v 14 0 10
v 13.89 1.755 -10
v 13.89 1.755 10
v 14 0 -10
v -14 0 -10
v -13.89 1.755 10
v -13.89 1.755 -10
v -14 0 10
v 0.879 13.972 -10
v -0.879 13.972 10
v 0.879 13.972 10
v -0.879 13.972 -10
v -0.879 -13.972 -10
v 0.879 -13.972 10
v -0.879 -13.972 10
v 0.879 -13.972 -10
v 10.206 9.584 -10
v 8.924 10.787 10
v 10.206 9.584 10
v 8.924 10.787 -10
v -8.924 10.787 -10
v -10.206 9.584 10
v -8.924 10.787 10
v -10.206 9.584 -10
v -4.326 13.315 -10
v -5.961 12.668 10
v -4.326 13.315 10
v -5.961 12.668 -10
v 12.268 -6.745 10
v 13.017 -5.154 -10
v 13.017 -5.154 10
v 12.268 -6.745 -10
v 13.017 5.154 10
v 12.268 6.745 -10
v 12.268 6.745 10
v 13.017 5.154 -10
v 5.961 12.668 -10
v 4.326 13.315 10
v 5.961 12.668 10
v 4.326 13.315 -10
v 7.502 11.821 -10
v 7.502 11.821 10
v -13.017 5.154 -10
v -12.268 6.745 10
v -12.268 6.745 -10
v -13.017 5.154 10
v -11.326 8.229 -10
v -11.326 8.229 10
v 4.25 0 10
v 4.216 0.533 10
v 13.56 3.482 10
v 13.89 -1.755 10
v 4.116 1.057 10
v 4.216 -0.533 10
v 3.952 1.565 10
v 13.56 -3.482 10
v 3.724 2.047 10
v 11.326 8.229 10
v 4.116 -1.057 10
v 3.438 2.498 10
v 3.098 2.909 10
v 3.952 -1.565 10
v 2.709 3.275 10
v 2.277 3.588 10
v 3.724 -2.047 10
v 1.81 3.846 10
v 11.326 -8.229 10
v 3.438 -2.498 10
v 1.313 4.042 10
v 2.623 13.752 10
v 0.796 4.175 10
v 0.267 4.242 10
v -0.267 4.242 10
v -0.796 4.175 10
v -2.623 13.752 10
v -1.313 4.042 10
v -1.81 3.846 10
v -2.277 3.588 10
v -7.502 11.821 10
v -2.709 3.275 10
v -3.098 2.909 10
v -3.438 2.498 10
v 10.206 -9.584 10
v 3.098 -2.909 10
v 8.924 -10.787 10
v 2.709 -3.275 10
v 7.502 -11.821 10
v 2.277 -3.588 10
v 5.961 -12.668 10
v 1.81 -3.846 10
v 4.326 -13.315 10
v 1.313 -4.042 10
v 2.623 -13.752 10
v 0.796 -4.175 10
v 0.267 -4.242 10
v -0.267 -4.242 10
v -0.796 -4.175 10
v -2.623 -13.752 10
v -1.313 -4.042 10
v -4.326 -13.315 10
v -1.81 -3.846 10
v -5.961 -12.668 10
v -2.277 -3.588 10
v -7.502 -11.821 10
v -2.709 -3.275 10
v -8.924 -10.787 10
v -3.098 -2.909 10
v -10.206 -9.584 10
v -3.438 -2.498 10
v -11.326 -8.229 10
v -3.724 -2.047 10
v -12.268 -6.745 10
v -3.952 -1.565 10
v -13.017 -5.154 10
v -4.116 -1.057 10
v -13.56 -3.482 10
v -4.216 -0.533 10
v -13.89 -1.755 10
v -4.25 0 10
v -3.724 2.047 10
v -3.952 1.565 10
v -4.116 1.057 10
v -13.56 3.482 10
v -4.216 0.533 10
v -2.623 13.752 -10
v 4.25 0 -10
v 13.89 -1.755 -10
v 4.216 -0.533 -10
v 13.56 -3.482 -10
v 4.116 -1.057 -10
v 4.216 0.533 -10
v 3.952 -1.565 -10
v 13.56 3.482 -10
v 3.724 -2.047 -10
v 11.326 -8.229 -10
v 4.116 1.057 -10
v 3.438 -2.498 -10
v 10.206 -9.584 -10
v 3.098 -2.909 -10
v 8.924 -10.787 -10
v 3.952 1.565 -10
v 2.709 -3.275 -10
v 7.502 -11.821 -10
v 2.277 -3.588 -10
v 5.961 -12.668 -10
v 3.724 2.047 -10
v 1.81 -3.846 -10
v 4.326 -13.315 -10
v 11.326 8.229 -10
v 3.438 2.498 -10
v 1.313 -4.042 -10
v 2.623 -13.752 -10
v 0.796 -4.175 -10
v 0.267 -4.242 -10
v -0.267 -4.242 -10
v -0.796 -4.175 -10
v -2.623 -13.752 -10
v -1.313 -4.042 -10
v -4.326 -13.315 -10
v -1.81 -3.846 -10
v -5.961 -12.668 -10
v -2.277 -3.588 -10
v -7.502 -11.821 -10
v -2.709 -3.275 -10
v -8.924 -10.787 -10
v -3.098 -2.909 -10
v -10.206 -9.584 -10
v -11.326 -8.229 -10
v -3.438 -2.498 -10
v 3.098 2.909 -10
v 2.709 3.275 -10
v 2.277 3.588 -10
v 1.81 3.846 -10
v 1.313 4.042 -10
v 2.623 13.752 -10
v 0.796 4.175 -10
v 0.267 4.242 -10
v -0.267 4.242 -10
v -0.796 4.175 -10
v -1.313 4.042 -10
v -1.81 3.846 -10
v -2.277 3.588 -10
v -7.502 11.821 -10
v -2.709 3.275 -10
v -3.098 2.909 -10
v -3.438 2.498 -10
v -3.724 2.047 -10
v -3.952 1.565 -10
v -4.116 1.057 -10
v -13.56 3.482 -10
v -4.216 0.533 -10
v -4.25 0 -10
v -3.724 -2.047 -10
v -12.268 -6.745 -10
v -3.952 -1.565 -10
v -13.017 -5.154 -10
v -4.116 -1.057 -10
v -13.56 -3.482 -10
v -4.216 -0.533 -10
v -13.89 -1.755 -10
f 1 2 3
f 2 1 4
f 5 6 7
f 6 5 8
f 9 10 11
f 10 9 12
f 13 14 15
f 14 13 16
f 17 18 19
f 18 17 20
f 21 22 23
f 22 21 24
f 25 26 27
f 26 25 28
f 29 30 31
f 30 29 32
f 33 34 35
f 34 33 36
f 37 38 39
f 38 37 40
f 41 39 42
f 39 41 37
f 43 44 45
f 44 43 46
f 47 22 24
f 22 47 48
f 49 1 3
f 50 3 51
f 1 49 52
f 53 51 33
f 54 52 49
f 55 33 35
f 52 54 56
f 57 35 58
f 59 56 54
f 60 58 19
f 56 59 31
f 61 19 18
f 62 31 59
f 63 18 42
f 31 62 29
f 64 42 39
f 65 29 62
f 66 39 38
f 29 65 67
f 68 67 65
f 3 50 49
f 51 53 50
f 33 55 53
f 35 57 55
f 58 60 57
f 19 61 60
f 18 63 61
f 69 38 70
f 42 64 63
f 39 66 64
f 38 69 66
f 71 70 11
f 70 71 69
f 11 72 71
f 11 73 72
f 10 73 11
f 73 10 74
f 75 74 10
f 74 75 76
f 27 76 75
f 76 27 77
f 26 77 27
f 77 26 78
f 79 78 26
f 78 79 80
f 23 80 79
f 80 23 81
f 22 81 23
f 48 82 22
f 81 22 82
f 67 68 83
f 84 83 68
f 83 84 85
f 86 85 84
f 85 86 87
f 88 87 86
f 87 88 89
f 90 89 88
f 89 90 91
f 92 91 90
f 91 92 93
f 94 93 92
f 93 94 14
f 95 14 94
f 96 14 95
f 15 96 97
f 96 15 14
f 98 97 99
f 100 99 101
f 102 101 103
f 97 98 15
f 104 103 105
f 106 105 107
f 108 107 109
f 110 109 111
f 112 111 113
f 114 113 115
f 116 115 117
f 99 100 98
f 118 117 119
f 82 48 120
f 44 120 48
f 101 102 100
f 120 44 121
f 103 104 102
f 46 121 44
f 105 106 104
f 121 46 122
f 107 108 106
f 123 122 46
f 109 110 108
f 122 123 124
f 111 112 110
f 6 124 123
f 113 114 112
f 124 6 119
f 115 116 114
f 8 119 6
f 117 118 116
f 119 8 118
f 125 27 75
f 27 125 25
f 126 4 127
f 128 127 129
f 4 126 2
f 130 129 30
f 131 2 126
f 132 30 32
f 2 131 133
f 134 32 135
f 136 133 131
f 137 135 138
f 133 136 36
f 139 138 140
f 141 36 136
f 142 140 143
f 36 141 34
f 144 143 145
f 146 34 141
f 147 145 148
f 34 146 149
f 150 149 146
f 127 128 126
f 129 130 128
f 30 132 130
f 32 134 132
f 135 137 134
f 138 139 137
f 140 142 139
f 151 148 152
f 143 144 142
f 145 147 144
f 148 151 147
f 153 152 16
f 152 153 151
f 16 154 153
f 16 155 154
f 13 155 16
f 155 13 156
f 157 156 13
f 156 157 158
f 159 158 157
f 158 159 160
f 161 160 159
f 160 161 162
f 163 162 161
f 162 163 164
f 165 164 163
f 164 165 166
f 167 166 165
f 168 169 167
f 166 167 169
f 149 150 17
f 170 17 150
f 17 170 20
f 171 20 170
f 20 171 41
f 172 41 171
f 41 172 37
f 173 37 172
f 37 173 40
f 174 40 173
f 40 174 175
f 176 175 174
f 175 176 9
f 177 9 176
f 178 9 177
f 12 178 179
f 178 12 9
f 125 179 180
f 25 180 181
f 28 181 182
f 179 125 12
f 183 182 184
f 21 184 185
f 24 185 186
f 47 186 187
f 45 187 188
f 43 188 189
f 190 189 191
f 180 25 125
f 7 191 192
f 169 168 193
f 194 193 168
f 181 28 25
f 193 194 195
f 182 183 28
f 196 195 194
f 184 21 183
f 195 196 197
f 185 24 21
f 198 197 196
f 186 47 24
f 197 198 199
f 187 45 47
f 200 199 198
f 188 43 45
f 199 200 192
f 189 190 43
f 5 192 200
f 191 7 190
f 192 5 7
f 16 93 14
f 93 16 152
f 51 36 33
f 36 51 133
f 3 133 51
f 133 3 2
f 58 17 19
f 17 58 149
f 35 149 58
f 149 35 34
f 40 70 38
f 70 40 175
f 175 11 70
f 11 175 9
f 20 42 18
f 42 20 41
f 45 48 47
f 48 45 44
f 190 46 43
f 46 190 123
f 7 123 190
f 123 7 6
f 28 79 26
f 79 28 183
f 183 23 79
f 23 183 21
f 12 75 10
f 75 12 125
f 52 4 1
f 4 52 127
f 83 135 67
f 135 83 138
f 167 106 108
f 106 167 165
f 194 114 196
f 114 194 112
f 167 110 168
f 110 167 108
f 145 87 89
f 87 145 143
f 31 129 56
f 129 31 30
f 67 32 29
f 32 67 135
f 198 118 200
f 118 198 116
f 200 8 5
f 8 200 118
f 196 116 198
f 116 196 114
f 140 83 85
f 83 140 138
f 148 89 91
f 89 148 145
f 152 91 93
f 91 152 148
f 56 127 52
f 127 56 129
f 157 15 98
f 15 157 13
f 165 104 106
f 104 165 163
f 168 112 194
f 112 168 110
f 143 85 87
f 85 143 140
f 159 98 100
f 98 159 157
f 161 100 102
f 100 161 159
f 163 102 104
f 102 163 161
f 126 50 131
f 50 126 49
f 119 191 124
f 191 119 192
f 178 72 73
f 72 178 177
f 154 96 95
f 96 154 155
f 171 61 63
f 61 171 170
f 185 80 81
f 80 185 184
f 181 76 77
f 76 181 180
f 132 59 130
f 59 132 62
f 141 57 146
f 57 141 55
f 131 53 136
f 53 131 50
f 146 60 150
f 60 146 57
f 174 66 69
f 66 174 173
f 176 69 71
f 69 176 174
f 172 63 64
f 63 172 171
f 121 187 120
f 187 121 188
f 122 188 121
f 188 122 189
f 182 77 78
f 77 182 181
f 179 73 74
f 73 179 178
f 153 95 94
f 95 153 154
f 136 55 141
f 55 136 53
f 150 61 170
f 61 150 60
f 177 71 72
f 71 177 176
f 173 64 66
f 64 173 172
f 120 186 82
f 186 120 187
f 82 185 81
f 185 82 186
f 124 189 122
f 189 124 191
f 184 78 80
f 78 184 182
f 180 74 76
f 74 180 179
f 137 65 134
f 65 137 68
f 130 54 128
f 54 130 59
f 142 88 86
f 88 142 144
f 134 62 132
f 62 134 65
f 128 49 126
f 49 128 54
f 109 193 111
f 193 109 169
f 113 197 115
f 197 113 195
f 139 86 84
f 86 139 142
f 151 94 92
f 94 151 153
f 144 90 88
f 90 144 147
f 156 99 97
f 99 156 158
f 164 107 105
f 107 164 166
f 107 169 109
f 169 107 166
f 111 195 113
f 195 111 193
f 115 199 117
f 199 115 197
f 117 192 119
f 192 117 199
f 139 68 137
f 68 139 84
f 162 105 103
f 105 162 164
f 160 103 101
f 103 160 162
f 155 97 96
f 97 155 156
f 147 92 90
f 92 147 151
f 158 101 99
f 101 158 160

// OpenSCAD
$fn = 50;


difference() {
	union() {
		translate(v = [0, 0, -10.0000000000]) {
			cylinder(h = 20, r = 14.0000000000);
		}
	}
	union() {
		translate(v = [0, 0, -100.0000000000]) {
			cylinder(h = 200, r = 4.2500000000);
		}
	}
}
